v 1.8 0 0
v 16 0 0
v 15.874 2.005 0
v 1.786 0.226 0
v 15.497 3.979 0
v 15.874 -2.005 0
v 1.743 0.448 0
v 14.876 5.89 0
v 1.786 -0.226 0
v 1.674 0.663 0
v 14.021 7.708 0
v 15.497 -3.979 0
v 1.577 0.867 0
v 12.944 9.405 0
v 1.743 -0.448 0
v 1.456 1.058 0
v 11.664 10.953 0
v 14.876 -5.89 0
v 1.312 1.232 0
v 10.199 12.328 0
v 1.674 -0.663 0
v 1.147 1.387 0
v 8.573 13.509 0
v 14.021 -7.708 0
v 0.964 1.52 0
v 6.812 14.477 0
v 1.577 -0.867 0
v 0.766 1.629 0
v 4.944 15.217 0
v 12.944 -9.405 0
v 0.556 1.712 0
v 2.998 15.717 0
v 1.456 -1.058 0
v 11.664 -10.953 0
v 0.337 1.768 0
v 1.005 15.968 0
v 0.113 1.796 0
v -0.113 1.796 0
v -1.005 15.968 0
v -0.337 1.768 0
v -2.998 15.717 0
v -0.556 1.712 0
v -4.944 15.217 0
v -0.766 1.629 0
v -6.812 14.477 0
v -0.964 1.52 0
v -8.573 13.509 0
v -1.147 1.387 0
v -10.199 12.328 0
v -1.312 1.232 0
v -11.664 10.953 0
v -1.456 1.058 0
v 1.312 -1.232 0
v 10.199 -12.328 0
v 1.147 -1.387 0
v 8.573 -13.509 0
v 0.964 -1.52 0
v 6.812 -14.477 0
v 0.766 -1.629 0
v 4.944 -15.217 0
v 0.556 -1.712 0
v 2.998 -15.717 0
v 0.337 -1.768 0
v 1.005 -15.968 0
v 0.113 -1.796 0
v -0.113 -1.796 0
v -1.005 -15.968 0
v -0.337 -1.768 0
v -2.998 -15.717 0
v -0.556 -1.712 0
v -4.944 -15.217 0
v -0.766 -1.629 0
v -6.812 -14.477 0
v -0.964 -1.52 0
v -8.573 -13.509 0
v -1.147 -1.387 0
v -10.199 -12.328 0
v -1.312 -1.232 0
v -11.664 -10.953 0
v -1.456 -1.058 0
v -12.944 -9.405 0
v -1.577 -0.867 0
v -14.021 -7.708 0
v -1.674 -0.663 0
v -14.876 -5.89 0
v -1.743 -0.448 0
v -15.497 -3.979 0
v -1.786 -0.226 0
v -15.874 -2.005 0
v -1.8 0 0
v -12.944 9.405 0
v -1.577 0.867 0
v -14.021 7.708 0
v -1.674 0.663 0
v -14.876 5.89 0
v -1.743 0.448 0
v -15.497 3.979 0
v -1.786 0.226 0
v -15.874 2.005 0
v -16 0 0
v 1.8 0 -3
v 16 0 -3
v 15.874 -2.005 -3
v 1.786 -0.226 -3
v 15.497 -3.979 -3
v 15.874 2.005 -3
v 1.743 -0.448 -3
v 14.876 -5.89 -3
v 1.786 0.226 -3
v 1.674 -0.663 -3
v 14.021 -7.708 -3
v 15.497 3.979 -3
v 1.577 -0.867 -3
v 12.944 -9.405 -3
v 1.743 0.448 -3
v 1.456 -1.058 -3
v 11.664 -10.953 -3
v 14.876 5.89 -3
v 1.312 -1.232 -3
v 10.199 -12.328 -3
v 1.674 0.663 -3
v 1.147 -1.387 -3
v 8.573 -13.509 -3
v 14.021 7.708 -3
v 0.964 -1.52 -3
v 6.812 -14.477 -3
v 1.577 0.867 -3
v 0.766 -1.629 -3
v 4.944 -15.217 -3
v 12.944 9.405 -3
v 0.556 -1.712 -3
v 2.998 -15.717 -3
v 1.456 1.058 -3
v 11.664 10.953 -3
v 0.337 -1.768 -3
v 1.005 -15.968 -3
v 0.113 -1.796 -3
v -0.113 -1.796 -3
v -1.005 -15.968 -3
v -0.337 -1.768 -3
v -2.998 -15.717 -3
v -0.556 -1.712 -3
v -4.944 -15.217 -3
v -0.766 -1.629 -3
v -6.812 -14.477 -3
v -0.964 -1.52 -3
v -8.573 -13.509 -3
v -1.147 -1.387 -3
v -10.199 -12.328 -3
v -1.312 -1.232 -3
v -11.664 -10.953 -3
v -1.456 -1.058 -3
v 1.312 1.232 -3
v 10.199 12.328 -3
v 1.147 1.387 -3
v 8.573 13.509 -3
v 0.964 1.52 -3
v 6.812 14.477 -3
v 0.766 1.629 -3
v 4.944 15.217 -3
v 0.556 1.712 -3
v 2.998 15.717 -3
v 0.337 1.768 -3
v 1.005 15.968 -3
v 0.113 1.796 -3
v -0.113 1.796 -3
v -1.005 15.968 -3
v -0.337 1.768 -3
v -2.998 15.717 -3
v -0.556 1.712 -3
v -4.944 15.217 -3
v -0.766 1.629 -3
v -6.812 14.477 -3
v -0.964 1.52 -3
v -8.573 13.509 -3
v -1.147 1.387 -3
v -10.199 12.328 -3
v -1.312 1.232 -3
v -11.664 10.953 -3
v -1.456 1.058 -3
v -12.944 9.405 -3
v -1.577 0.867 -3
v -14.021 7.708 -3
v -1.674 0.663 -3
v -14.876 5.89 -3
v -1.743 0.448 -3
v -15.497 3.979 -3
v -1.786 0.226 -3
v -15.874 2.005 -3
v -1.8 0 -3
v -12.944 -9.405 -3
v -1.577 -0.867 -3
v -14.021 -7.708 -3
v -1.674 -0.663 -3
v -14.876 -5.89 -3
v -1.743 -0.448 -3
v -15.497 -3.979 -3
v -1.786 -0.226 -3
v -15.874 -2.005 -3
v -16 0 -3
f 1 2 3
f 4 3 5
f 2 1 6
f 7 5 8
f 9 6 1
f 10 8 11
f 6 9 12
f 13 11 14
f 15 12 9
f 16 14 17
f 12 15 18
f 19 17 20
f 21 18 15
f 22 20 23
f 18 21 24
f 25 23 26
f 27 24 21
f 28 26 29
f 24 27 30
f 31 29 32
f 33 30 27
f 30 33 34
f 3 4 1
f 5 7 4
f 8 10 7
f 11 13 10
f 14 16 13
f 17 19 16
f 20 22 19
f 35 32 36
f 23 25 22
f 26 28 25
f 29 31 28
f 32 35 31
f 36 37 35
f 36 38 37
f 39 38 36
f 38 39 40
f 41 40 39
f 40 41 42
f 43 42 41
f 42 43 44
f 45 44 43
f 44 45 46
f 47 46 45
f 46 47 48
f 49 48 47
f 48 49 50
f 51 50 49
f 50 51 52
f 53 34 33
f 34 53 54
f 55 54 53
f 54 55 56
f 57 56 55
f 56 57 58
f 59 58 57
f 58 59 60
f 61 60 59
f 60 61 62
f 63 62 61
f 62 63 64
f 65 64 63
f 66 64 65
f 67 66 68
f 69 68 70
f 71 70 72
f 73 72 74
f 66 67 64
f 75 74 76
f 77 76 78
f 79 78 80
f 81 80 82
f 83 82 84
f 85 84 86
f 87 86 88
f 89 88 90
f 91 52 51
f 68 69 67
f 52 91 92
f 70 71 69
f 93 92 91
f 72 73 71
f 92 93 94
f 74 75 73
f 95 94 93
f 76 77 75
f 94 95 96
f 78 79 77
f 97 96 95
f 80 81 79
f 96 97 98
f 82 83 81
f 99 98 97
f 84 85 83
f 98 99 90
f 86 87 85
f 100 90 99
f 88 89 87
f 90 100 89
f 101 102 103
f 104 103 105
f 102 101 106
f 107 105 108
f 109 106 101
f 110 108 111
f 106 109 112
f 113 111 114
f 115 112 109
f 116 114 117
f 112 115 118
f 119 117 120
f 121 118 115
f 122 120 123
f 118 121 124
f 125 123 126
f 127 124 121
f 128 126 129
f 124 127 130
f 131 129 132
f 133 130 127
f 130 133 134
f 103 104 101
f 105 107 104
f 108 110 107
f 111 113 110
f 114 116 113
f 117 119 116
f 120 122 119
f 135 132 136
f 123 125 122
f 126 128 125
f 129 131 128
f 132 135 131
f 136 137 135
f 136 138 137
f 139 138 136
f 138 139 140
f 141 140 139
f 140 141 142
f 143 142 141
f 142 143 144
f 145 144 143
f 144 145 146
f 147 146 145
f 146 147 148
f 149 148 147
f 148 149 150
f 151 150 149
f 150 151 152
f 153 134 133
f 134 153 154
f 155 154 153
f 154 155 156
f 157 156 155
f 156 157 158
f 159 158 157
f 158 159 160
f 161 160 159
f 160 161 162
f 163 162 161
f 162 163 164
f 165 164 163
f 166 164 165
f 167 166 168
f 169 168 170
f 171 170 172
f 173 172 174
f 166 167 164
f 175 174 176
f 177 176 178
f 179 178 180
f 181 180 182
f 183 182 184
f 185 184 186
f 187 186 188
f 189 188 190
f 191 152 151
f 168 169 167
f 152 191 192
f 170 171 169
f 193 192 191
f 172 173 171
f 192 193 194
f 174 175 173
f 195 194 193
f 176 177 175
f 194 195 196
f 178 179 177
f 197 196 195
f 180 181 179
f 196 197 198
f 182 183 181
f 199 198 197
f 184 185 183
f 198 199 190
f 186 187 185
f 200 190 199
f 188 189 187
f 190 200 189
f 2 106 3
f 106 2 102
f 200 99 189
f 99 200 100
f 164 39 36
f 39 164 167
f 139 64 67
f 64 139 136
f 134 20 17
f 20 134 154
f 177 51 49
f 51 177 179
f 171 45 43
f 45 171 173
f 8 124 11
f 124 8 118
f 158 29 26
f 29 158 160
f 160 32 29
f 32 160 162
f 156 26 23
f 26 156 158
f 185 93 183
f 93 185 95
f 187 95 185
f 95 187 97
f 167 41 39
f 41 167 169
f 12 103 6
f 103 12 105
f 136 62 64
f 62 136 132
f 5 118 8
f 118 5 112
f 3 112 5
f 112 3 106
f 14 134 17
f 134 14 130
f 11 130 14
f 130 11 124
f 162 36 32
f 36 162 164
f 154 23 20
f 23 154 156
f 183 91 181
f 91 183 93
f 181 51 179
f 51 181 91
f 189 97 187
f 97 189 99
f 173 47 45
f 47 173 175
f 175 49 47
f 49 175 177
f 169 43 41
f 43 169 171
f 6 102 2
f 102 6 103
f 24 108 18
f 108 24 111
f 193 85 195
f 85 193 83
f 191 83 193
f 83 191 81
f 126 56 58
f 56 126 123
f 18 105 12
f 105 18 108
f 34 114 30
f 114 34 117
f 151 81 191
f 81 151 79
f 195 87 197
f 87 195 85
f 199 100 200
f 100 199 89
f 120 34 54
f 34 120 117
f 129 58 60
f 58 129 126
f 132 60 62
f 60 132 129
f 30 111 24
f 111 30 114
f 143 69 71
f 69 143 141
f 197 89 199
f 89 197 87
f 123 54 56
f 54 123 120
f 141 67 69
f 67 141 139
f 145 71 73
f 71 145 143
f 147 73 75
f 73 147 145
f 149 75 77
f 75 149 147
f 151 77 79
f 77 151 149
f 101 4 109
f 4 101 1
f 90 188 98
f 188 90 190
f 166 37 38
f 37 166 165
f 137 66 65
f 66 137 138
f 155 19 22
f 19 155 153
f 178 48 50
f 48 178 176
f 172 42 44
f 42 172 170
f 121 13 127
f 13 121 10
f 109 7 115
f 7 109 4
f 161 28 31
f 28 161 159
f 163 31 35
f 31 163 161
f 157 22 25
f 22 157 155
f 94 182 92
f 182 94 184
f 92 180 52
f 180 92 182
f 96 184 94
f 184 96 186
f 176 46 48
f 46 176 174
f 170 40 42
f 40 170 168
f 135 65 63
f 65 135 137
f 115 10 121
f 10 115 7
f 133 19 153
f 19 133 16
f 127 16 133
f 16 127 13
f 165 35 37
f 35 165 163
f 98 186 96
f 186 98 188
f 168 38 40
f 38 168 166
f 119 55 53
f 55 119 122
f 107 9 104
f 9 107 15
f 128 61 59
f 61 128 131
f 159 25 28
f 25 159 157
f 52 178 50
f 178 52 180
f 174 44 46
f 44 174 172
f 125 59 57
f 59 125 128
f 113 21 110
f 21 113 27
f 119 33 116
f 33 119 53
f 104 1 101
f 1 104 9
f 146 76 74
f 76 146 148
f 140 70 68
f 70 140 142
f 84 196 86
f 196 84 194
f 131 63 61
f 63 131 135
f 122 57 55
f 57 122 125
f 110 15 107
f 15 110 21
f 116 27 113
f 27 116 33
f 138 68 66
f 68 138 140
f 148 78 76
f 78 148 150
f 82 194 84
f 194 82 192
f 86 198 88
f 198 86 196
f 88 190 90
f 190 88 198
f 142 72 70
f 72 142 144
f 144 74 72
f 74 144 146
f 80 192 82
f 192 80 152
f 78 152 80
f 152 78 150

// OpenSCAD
$fn = 50;


difference() {
	union() {
		translate(v = [0, 0, -3.0000000000]) {
			cylinder(h = 3, r = 7.0000000000);
		}
		translate(v = [0, 0, -3.0000000000]) {
			cylinder(h = 3, r = 16.0000000000);
		}
	}
	union() {
		#translate(v = [0, 0, -3]) {
			cylinder(h = 3, r = 1.8000000000);
		}
	}
}
